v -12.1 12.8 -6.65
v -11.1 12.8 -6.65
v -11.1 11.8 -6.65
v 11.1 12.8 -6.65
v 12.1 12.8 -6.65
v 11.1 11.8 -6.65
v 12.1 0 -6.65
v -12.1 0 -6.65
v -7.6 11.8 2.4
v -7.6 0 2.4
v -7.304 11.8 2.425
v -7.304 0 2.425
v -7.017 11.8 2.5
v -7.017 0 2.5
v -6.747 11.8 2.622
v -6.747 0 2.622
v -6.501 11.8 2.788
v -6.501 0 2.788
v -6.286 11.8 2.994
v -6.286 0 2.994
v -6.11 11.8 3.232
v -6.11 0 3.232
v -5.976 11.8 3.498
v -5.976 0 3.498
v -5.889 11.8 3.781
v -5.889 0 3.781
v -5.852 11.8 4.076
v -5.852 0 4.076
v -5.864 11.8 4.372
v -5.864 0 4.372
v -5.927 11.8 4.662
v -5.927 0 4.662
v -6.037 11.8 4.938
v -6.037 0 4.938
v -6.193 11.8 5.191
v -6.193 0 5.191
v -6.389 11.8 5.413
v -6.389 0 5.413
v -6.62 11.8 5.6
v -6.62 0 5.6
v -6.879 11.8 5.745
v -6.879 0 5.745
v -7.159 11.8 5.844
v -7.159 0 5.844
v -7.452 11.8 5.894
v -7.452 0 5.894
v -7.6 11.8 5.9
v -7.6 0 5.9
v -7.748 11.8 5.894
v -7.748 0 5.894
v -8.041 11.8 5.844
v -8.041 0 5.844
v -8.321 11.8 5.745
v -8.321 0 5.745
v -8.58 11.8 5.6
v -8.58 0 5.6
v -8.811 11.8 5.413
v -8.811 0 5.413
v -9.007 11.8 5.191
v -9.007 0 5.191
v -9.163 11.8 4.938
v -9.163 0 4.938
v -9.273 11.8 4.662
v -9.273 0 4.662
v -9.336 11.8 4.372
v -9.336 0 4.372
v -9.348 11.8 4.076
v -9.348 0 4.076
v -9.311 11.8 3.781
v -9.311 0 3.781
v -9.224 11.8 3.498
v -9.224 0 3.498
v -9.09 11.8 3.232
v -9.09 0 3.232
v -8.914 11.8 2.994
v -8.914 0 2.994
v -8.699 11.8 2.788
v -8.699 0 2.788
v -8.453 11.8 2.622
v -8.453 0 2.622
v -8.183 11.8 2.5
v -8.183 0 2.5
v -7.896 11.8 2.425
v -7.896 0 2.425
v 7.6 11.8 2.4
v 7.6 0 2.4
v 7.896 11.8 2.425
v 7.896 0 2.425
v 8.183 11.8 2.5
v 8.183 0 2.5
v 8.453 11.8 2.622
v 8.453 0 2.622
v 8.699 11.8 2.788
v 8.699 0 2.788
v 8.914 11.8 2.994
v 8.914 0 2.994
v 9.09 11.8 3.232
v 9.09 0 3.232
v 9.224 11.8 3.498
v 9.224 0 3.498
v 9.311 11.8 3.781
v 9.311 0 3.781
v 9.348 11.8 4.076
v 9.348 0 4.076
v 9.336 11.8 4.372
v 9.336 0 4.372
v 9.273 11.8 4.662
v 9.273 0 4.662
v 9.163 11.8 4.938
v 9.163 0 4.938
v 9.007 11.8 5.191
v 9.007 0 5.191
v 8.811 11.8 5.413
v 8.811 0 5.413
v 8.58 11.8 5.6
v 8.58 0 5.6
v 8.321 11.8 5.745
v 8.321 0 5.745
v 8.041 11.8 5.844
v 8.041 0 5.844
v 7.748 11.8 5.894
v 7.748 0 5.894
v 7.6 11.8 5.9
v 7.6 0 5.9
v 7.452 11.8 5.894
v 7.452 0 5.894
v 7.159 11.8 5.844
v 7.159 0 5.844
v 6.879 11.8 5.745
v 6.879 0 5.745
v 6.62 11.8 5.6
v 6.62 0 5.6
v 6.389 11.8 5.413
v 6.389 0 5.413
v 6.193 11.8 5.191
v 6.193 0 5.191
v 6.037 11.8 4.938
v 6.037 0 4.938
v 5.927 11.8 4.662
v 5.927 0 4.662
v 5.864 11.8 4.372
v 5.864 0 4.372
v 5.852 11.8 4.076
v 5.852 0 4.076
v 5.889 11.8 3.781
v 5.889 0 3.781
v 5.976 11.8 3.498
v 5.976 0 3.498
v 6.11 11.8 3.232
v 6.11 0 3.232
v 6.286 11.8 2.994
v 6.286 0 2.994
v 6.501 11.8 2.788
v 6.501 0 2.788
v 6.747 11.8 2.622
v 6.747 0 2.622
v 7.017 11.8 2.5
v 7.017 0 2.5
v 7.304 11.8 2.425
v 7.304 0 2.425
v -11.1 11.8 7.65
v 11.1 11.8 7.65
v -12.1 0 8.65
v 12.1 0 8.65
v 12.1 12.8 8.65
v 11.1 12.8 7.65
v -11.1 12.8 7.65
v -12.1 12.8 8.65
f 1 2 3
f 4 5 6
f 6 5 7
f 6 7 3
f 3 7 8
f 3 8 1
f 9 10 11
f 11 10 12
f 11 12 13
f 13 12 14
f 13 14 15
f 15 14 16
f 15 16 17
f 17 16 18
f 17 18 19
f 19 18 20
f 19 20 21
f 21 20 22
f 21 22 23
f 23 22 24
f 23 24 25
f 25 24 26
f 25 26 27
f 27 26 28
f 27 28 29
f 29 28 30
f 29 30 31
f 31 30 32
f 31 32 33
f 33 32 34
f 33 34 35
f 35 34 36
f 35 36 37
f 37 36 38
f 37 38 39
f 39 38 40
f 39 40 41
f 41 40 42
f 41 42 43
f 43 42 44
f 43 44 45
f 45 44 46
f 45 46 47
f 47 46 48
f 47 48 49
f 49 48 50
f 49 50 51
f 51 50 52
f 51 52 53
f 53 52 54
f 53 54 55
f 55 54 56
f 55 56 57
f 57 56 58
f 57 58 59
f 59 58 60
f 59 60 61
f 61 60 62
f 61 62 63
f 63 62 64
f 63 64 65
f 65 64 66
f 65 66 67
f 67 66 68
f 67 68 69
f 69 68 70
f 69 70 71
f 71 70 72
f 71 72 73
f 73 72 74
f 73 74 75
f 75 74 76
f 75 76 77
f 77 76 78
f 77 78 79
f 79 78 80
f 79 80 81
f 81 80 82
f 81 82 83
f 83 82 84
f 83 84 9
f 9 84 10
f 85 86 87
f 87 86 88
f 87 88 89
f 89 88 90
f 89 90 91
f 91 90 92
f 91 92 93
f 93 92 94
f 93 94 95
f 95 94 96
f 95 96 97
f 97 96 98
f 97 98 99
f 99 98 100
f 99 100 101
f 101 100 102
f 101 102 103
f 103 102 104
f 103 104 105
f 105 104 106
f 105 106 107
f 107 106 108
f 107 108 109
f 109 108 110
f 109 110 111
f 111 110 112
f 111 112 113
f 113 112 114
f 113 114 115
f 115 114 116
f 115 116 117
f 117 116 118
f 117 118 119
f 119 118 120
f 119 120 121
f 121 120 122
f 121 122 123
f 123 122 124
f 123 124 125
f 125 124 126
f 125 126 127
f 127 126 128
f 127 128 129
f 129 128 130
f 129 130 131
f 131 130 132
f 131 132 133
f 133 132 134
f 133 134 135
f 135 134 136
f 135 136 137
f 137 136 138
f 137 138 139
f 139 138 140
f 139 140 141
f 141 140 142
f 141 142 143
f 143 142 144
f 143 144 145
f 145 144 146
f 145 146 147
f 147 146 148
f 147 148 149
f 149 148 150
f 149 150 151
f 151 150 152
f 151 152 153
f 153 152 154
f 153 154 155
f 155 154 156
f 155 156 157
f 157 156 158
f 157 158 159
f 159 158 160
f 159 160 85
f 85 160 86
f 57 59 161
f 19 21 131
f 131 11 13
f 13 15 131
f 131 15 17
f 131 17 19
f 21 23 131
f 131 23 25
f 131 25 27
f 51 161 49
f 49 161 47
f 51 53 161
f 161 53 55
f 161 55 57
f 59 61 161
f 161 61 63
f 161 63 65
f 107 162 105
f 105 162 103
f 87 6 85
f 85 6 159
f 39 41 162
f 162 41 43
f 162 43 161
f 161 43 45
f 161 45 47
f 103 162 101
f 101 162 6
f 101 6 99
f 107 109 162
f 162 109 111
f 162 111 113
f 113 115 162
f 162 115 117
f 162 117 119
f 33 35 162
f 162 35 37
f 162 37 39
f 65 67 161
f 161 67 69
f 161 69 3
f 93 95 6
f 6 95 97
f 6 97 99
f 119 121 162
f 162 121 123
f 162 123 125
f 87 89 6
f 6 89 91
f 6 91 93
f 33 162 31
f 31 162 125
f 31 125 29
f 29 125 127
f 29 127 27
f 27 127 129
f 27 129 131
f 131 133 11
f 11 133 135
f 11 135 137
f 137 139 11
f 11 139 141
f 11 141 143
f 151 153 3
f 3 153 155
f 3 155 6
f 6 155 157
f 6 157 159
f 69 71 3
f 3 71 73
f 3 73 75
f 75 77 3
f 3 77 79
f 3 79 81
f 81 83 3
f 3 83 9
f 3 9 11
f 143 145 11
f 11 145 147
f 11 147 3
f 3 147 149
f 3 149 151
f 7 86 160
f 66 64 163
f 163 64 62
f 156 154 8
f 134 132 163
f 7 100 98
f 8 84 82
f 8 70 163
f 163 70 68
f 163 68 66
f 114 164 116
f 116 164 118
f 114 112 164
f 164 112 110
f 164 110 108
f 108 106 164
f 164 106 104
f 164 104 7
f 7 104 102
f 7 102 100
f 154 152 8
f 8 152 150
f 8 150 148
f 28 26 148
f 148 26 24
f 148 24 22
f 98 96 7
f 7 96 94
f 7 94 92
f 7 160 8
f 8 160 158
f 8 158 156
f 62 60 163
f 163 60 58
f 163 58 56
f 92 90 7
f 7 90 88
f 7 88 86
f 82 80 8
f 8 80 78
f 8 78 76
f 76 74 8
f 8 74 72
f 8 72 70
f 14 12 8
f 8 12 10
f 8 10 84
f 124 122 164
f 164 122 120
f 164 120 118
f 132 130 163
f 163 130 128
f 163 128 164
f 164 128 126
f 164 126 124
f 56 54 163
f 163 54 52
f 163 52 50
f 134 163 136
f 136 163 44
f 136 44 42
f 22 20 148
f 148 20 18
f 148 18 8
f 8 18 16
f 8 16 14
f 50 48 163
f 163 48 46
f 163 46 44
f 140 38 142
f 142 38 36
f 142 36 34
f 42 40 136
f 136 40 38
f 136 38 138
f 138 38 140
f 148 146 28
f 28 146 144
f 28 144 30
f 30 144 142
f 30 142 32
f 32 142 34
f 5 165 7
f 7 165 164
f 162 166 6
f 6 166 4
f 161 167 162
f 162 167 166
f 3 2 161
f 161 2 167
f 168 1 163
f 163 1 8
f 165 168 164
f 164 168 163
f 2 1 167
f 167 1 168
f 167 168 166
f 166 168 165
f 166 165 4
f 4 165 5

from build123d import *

# Parameters (mm, degrees)
SKETCH1_W           = 22.2
SKETCH1_H           = 14.3
SKETCH1_R           = 1.75
BOSS_EXTRUDE1_DEPTH = 11.8
BOSS_EXTRUDE2_DEPTH = 12.8


with BuildPart() as part:
    # Sketch1 → Boss-Extrude1 (new body)
    with BuildSketch(Plane(origin=(0, 0, 0), x_dir=(1, 0, 0), z_dir=(0, 1, 0))):
        with Locations((0, -0.5)):
            Rectangle(SKETCH1_W, SKETCH1_H)
        with Locations((7.6, -4.15)):
            Circle(SKETCH1_R, mode=Mode.SUBTRACT)
        with Locations((-7.6, -4.15)):
            Circle(SKETCH1_R, mode=Mode.SUBTRACT)
    extrude(amount=BOSS_EXTRUDE1_DEPTH)

    # Sketch1<3> → Boss-Extrude2 (add)
    with BuildSketch(Plane(origin=(0, 0, 0), x_dir=(1, 0, 0), z_dir=(0, 1, 0))):
        Polygon((-11.1, -7.65), (-11.1, 6.65), (-12.1, 6.65), (-12.1, -8.65), (12.1, -8.65), (12.1, 6.65), (11.1, 6.65), (11.1, -7.65), align=None)
    extrude(amount=BOSS_EXTRUDE2_DEPTH)


solid = part.part
